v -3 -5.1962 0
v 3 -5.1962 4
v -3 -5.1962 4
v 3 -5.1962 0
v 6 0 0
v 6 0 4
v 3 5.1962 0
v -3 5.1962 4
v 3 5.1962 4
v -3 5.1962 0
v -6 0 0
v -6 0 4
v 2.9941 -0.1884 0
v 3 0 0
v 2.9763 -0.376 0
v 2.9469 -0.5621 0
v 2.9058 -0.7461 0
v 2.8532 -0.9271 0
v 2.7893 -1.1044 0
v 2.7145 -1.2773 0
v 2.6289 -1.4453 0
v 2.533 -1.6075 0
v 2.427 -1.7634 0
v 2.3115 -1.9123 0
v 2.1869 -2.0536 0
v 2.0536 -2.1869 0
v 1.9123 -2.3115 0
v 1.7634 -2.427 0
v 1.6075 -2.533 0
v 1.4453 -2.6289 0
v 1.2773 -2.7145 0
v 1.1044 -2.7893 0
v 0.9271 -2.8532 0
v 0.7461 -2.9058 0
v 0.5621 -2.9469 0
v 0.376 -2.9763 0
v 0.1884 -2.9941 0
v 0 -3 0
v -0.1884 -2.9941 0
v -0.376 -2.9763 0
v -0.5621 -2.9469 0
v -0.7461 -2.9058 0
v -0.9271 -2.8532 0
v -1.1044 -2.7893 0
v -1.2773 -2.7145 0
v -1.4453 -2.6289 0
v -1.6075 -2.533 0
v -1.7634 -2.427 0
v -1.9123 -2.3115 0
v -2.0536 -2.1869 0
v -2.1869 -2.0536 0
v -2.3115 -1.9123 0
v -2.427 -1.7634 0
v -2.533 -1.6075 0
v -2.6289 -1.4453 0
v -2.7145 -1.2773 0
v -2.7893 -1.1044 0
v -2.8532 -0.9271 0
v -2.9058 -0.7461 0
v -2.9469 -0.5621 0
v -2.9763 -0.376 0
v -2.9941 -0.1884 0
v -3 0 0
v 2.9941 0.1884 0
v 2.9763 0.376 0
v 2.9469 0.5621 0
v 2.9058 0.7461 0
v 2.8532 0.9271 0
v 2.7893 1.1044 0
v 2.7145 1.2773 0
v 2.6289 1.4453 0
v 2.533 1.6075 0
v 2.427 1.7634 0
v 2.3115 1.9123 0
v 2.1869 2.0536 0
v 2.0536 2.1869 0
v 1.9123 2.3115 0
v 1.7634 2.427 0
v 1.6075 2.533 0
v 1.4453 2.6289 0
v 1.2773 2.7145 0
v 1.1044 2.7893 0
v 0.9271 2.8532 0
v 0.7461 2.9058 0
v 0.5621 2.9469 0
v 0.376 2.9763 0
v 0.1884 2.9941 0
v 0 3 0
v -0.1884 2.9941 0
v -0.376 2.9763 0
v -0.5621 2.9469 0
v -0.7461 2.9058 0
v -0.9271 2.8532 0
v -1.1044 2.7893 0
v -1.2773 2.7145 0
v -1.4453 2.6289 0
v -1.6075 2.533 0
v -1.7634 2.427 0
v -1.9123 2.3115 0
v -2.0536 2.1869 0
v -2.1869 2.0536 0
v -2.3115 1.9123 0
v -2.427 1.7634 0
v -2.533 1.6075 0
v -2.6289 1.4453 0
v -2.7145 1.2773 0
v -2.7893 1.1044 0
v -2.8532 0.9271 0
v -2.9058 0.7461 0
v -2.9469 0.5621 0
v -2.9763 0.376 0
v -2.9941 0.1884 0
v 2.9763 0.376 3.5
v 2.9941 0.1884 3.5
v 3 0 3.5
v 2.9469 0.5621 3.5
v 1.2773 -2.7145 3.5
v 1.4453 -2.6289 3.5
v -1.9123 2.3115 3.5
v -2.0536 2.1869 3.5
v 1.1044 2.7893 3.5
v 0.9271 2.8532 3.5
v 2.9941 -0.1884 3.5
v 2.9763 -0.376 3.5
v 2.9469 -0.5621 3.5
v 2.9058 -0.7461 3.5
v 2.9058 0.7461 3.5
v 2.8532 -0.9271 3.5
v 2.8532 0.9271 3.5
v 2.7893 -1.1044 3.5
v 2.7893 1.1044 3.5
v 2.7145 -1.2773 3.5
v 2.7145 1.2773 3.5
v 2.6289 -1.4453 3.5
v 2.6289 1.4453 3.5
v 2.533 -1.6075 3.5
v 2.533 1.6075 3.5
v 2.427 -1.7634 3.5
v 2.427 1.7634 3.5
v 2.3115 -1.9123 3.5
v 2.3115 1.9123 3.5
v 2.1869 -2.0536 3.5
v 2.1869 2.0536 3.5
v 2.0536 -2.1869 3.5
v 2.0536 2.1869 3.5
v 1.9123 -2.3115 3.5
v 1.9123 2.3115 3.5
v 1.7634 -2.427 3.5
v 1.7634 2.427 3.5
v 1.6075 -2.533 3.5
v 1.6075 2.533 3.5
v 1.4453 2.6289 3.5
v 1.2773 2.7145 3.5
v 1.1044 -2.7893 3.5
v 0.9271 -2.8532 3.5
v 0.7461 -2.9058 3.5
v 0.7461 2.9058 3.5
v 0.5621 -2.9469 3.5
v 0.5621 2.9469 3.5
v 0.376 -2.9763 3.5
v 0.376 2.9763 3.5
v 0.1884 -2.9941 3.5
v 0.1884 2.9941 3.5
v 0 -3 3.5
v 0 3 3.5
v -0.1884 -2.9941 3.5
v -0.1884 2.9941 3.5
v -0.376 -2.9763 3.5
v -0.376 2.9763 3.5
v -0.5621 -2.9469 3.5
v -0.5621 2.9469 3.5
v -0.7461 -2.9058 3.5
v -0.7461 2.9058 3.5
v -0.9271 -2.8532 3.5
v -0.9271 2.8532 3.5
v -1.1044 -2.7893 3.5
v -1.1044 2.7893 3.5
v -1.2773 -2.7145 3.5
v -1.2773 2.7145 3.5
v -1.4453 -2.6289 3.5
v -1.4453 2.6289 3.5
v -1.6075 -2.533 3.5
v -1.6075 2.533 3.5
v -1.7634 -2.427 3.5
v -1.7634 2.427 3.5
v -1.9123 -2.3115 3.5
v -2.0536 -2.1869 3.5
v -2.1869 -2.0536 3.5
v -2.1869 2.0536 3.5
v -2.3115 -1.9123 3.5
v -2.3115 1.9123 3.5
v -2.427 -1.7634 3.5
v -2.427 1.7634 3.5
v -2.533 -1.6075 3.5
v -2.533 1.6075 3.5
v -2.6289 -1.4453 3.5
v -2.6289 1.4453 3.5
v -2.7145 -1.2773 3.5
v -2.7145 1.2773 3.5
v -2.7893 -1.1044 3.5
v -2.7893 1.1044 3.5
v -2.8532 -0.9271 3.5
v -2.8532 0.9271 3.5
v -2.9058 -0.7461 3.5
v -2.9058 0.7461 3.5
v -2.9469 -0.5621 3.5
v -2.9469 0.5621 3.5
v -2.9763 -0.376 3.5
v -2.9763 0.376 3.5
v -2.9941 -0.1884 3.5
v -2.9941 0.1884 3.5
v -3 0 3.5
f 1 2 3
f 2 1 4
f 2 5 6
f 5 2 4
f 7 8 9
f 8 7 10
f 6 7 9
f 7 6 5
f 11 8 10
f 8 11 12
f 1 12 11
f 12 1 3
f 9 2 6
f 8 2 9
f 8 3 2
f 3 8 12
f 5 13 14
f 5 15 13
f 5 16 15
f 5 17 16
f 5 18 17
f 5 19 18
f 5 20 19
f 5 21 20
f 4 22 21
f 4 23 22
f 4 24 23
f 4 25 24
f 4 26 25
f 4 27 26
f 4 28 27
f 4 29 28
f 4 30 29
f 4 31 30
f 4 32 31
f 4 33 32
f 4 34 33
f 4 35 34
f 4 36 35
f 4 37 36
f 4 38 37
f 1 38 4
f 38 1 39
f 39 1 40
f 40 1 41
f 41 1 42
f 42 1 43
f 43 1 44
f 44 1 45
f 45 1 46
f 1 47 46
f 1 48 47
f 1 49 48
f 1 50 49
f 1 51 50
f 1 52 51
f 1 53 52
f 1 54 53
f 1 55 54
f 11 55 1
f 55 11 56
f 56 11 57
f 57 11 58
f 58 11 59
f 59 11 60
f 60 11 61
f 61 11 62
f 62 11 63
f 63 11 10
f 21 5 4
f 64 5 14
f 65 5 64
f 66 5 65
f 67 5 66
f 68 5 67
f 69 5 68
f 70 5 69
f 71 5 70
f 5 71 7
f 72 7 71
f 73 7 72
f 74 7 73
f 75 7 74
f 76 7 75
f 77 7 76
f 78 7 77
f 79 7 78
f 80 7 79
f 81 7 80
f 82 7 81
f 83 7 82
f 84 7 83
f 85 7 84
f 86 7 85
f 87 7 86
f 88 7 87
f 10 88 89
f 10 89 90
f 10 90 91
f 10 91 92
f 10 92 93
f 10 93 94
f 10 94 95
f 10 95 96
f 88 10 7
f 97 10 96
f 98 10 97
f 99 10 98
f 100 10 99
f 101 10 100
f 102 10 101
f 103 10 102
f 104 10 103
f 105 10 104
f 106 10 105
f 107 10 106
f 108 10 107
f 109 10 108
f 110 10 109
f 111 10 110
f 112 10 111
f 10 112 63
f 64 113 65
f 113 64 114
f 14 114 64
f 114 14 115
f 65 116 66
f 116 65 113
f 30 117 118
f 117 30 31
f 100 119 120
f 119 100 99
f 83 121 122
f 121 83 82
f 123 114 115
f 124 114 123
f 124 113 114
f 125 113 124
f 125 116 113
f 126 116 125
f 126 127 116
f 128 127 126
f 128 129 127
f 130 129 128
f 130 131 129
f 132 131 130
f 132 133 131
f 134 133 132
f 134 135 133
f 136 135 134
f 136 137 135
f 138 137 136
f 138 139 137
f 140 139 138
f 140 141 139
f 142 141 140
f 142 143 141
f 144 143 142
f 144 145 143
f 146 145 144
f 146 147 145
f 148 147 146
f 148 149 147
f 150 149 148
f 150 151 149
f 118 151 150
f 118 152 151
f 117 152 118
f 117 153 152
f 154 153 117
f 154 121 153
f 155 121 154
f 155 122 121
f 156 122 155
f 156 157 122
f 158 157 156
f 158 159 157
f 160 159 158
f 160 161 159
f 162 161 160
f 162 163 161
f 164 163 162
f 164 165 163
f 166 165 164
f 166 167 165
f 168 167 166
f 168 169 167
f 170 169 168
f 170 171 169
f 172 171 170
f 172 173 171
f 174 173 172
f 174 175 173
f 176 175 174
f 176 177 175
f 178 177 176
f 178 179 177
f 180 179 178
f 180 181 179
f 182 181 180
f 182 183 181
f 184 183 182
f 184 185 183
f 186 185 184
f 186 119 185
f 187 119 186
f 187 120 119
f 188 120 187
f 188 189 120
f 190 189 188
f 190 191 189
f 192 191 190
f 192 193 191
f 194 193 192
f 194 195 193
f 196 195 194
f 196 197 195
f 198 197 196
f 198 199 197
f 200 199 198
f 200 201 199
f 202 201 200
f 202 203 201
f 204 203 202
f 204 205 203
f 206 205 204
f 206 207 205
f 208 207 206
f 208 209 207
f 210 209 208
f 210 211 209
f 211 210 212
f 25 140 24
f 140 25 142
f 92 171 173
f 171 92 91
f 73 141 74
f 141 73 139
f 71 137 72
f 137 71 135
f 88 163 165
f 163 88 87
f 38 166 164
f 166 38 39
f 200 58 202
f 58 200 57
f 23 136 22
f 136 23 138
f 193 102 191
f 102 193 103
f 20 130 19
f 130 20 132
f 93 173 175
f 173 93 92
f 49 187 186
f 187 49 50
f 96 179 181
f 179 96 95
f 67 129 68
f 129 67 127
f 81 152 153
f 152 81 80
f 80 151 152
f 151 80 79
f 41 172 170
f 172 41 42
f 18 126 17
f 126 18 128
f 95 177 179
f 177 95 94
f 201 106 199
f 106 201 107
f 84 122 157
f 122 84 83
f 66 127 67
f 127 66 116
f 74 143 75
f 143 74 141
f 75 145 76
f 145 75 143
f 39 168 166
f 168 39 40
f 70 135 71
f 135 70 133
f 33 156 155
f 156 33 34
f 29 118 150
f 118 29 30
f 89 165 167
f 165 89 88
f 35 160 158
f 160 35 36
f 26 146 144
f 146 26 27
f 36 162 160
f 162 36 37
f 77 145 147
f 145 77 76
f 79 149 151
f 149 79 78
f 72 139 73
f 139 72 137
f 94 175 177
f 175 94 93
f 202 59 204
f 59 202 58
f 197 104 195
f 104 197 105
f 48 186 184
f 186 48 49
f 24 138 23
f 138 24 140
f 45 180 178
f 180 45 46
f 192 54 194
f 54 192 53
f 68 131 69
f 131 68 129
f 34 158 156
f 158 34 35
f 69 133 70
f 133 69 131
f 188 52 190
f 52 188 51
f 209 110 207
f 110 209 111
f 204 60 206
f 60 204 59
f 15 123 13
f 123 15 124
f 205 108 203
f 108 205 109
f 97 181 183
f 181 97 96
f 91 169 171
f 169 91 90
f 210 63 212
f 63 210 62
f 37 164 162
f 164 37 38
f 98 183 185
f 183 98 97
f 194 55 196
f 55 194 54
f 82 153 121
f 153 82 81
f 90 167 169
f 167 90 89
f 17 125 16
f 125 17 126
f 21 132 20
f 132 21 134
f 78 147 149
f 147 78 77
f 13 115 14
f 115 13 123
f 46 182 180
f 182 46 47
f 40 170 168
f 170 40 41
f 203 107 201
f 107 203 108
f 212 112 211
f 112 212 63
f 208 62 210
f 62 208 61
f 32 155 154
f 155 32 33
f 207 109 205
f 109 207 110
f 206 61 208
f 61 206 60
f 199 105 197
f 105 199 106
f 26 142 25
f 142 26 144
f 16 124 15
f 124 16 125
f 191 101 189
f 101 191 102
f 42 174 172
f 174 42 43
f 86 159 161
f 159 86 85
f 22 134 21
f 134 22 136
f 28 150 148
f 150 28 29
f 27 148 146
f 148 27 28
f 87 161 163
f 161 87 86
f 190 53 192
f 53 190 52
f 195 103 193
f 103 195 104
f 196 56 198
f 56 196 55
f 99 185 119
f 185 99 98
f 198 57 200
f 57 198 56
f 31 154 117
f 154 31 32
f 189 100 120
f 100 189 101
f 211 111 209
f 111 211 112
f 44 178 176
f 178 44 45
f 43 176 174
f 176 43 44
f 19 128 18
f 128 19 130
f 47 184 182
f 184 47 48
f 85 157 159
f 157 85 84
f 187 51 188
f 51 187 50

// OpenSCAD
// Nut Component
module nut() {
    difference() {
        // Hexagonal outer shape with uniform dimensions
        cylinder(h = 4, r = 6, $fn = 6); // Reduced height to match original model
        
        // Cylindrical inner hole with reduced depth
        translate([0, 0, -0.5]) cylinder(h = 4, r = 3, $fn = 100); // Adjusted height to match original model
    }
}

// Render the nut
nut();
